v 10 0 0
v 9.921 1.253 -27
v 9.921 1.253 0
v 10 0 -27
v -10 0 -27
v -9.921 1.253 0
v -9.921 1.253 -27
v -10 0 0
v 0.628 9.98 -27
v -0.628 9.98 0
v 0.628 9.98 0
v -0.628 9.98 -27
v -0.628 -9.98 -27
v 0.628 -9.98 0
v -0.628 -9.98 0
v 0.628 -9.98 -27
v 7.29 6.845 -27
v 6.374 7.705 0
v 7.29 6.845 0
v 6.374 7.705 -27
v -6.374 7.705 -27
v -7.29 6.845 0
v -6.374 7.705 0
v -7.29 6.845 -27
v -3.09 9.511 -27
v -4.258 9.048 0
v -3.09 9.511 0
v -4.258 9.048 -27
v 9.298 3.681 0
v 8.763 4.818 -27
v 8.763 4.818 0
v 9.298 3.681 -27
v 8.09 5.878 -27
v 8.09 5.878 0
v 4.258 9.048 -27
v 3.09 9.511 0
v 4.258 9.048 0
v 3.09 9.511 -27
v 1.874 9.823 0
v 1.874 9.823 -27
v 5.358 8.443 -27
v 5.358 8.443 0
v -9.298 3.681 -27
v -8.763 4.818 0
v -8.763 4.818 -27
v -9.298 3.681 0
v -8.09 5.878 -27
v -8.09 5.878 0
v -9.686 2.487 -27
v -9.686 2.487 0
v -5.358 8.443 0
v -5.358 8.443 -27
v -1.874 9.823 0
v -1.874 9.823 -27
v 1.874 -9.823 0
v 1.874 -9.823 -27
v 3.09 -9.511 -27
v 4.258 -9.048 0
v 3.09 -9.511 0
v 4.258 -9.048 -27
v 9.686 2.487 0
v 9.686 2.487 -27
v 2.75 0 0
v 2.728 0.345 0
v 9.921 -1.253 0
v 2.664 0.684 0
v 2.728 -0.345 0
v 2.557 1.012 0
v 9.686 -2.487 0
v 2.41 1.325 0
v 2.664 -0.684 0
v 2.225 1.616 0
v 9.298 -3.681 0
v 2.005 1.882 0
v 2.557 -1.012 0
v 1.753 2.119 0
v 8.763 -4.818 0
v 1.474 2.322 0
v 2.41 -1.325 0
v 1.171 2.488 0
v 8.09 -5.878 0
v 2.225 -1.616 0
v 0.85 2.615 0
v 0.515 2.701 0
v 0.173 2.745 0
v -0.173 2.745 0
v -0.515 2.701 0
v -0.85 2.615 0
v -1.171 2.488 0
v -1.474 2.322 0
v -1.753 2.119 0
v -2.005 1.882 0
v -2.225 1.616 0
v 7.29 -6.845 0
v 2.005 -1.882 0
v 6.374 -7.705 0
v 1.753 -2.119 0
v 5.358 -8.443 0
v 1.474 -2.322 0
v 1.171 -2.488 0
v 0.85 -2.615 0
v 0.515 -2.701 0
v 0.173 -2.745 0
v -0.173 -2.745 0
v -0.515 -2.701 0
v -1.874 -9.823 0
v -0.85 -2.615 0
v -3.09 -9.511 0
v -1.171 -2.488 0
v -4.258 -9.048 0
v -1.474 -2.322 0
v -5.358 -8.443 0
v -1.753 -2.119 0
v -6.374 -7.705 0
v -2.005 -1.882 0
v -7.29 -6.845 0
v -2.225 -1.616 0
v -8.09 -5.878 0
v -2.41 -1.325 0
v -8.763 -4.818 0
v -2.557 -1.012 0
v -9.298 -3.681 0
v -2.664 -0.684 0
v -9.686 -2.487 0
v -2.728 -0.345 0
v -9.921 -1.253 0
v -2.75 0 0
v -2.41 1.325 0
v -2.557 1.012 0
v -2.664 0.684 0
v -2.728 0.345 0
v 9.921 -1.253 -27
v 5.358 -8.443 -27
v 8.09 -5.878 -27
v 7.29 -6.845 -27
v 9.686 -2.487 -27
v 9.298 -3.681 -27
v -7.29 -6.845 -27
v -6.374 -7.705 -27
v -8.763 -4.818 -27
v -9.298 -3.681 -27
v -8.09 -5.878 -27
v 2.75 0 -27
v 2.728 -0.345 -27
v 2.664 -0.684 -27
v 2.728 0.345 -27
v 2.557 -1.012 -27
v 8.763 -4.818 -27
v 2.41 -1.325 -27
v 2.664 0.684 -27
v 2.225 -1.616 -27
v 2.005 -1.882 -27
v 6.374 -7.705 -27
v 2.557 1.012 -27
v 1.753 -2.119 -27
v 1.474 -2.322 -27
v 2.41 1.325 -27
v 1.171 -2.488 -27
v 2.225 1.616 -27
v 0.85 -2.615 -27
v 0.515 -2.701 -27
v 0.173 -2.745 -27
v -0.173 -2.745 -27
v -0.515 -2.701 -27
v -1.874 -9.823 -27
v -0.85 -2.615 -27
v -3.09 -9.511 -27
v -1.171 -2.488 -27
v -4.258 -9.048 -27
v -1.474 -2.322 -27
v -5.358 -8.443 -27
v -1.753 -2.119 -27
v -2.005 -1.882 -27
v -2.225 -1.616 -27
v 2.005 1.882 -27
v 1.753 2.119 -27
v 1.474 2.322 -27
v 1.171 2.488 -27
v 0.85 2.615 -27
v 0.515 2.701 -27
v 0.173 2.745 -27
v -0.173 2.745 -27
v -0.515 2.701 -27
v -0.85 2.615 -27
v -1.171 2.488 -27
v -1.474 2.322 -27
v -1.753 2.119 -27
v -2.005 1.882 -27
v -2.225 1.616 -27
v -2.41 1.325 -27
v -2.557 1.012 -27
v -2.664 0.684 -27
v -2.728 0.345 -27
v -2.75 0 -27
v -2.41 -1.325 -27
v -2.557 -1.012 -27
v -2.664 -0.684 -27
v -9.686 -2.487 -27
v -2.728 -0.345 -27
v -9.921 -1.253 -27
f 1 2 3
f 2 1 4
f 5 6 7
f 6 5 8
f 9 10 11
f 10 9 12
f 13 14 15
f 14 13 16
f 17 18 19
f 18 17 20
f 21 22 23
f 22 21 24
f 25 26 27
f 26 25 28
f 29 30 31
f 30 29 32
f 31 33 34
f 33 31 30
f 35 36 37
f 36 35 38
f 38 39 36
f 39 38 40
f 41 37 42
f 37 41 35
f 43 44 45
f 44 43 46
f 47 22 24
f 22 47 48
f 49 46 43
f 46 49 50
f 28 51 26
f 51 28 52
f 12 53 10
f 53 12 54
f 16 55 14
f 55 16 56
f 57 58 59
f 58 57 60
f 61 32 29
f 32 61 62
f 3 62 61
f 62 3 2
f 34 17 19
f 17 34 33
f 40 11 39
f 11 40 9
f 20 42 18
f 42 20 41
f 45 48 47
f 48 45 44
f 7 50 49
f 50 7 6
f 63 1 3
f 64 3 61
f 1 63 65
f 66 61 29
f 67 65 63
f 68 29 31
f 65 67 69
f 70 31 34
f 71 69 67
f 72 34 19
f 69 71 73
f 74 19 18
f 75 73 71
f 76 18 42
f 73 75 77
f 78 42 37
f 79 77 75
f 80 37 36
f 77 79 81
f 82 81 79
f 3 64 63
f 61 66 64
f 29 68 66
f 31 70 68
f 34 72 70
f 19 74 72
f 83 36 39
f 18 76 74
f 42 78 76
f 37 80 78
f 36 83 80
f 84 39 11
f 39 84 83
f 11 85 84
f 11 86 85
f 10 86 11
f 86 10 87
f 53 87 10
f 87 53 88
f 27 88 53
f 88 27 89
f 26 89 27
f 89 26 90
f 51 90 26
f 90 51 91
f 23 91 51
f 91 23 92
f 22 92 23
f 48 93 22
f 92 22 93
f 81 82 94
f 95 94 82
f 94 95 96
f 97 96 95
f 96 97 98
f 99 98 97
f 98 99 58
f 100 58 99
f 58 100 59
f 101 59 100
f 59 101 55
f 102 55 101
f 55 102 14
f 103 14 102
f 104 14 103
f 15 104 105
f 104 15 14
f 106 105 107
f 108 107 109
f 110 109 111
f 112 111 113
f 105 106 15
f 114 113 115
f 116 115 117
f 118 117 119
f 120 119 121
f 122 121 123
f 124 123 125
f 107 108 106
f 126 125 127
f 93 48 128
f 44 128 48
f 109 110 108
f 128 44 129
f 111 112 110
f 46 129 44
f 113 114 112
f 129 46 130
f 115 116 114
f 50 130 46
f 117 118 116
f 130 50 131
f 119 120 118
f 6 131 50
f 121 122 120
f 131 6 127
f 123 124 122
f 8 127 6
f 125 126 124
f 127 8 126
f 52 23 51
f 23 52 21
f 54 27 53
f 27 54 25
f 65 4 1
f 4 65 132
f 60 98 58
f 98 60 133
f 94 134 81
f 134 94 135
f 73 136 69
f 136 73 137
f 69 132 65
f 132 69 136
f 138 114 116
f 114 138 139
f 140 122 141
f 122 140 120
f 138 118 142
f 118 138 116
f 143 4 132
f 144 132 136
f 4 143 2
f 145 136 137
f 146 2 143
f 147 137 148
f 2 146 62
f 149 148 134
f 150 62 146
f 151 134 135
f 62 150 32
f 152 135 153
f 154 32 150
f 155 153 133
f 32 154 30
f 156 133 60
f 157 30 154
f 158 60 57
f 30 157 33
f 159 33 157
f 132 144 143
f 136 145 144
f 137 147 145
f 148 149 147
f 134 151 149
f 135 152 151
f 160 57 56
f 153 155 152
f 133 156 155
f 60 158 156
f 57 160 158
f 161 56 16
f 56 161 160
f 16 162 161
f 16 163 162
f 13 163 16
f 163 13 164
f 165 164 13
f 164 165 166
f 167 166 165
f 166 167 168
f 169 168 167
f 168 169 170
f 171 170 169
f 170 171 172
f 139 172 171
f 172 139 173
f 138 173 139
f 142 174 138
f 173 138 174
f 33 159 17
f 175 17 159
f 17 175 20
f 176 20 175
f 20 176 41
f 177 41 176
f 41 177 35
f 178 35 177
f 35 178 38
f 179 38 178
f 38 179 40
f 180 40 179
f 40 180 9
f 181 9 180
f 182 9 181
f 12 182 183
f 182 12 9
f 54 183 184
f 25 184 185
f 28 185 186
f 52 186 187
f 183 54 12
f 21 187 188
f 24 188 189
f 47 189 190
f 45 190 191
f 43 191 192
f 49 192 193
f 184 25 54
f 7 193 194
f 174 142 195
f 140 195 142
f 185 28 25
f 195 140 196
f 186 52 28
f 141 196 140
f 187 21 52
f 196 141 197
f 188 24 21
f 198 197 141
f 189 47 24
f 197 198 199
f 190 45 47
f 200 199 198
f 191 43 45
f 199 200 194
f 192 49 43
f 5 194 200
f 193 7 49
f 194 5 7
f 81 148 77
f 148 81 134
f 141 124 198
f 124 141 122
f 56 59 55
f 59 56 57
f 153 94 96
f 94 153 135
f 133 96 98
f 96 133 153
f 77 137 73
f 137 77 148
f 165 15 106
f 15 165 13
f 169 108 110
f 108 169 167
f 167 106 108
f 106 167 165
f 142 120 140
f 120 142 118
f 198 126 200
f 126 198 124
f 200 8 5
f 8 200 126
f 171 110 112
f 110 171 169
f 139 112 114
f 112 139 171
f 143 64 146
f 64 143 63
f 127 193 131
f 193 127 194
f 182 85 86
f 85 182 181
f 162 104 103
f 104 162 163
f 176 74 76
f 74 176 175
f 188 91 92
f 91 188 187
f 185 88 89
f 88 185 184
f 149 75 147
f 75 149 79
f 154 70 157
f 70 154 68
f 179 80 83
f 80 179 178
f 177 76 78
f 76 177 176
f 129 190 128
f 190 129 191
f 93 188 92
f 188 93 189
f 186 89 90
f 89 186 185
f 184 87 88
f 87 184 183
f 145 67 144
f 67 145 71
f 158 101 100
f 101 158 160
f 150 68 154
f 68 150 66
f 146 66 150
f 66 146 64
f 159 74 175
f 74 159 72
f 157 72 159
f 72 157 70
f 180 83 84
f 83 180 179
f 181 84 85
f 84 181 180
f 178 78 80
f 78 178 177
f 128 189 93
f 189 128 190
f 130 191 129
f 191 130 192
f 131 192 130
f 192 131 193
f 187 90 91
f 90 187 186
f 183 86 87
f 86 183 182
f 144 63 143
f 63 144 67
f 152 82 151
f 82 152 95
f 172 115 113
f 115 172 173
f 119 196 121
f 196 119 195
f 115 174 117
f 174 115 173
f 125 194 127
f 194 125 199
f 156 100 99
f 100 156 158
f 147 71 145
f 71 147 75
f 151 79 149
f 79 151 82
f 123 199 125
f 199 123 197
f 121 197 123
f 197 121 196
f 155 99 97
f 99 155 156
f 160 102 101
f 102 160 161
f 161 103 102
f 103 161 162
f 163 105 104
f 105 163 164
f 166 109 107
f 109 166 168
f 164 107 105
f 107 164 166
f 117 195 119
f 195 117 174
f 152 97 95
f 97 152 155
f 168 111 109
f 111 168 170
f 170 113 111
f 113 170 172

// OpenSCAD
$fn = 50;


difference() {
	union() {
		translate(v = [0, 0, -27.0000000000]) {
			cylinder(h = 27, r = 10.0000000000);
		}
		cylinder(h = 0, r = 20.0000000000);
	}
	union() {
		#translate(v = [0, 0, -27]) {
			cylinder(h = 27, r = 2.7500000000);
		}
	}
}
